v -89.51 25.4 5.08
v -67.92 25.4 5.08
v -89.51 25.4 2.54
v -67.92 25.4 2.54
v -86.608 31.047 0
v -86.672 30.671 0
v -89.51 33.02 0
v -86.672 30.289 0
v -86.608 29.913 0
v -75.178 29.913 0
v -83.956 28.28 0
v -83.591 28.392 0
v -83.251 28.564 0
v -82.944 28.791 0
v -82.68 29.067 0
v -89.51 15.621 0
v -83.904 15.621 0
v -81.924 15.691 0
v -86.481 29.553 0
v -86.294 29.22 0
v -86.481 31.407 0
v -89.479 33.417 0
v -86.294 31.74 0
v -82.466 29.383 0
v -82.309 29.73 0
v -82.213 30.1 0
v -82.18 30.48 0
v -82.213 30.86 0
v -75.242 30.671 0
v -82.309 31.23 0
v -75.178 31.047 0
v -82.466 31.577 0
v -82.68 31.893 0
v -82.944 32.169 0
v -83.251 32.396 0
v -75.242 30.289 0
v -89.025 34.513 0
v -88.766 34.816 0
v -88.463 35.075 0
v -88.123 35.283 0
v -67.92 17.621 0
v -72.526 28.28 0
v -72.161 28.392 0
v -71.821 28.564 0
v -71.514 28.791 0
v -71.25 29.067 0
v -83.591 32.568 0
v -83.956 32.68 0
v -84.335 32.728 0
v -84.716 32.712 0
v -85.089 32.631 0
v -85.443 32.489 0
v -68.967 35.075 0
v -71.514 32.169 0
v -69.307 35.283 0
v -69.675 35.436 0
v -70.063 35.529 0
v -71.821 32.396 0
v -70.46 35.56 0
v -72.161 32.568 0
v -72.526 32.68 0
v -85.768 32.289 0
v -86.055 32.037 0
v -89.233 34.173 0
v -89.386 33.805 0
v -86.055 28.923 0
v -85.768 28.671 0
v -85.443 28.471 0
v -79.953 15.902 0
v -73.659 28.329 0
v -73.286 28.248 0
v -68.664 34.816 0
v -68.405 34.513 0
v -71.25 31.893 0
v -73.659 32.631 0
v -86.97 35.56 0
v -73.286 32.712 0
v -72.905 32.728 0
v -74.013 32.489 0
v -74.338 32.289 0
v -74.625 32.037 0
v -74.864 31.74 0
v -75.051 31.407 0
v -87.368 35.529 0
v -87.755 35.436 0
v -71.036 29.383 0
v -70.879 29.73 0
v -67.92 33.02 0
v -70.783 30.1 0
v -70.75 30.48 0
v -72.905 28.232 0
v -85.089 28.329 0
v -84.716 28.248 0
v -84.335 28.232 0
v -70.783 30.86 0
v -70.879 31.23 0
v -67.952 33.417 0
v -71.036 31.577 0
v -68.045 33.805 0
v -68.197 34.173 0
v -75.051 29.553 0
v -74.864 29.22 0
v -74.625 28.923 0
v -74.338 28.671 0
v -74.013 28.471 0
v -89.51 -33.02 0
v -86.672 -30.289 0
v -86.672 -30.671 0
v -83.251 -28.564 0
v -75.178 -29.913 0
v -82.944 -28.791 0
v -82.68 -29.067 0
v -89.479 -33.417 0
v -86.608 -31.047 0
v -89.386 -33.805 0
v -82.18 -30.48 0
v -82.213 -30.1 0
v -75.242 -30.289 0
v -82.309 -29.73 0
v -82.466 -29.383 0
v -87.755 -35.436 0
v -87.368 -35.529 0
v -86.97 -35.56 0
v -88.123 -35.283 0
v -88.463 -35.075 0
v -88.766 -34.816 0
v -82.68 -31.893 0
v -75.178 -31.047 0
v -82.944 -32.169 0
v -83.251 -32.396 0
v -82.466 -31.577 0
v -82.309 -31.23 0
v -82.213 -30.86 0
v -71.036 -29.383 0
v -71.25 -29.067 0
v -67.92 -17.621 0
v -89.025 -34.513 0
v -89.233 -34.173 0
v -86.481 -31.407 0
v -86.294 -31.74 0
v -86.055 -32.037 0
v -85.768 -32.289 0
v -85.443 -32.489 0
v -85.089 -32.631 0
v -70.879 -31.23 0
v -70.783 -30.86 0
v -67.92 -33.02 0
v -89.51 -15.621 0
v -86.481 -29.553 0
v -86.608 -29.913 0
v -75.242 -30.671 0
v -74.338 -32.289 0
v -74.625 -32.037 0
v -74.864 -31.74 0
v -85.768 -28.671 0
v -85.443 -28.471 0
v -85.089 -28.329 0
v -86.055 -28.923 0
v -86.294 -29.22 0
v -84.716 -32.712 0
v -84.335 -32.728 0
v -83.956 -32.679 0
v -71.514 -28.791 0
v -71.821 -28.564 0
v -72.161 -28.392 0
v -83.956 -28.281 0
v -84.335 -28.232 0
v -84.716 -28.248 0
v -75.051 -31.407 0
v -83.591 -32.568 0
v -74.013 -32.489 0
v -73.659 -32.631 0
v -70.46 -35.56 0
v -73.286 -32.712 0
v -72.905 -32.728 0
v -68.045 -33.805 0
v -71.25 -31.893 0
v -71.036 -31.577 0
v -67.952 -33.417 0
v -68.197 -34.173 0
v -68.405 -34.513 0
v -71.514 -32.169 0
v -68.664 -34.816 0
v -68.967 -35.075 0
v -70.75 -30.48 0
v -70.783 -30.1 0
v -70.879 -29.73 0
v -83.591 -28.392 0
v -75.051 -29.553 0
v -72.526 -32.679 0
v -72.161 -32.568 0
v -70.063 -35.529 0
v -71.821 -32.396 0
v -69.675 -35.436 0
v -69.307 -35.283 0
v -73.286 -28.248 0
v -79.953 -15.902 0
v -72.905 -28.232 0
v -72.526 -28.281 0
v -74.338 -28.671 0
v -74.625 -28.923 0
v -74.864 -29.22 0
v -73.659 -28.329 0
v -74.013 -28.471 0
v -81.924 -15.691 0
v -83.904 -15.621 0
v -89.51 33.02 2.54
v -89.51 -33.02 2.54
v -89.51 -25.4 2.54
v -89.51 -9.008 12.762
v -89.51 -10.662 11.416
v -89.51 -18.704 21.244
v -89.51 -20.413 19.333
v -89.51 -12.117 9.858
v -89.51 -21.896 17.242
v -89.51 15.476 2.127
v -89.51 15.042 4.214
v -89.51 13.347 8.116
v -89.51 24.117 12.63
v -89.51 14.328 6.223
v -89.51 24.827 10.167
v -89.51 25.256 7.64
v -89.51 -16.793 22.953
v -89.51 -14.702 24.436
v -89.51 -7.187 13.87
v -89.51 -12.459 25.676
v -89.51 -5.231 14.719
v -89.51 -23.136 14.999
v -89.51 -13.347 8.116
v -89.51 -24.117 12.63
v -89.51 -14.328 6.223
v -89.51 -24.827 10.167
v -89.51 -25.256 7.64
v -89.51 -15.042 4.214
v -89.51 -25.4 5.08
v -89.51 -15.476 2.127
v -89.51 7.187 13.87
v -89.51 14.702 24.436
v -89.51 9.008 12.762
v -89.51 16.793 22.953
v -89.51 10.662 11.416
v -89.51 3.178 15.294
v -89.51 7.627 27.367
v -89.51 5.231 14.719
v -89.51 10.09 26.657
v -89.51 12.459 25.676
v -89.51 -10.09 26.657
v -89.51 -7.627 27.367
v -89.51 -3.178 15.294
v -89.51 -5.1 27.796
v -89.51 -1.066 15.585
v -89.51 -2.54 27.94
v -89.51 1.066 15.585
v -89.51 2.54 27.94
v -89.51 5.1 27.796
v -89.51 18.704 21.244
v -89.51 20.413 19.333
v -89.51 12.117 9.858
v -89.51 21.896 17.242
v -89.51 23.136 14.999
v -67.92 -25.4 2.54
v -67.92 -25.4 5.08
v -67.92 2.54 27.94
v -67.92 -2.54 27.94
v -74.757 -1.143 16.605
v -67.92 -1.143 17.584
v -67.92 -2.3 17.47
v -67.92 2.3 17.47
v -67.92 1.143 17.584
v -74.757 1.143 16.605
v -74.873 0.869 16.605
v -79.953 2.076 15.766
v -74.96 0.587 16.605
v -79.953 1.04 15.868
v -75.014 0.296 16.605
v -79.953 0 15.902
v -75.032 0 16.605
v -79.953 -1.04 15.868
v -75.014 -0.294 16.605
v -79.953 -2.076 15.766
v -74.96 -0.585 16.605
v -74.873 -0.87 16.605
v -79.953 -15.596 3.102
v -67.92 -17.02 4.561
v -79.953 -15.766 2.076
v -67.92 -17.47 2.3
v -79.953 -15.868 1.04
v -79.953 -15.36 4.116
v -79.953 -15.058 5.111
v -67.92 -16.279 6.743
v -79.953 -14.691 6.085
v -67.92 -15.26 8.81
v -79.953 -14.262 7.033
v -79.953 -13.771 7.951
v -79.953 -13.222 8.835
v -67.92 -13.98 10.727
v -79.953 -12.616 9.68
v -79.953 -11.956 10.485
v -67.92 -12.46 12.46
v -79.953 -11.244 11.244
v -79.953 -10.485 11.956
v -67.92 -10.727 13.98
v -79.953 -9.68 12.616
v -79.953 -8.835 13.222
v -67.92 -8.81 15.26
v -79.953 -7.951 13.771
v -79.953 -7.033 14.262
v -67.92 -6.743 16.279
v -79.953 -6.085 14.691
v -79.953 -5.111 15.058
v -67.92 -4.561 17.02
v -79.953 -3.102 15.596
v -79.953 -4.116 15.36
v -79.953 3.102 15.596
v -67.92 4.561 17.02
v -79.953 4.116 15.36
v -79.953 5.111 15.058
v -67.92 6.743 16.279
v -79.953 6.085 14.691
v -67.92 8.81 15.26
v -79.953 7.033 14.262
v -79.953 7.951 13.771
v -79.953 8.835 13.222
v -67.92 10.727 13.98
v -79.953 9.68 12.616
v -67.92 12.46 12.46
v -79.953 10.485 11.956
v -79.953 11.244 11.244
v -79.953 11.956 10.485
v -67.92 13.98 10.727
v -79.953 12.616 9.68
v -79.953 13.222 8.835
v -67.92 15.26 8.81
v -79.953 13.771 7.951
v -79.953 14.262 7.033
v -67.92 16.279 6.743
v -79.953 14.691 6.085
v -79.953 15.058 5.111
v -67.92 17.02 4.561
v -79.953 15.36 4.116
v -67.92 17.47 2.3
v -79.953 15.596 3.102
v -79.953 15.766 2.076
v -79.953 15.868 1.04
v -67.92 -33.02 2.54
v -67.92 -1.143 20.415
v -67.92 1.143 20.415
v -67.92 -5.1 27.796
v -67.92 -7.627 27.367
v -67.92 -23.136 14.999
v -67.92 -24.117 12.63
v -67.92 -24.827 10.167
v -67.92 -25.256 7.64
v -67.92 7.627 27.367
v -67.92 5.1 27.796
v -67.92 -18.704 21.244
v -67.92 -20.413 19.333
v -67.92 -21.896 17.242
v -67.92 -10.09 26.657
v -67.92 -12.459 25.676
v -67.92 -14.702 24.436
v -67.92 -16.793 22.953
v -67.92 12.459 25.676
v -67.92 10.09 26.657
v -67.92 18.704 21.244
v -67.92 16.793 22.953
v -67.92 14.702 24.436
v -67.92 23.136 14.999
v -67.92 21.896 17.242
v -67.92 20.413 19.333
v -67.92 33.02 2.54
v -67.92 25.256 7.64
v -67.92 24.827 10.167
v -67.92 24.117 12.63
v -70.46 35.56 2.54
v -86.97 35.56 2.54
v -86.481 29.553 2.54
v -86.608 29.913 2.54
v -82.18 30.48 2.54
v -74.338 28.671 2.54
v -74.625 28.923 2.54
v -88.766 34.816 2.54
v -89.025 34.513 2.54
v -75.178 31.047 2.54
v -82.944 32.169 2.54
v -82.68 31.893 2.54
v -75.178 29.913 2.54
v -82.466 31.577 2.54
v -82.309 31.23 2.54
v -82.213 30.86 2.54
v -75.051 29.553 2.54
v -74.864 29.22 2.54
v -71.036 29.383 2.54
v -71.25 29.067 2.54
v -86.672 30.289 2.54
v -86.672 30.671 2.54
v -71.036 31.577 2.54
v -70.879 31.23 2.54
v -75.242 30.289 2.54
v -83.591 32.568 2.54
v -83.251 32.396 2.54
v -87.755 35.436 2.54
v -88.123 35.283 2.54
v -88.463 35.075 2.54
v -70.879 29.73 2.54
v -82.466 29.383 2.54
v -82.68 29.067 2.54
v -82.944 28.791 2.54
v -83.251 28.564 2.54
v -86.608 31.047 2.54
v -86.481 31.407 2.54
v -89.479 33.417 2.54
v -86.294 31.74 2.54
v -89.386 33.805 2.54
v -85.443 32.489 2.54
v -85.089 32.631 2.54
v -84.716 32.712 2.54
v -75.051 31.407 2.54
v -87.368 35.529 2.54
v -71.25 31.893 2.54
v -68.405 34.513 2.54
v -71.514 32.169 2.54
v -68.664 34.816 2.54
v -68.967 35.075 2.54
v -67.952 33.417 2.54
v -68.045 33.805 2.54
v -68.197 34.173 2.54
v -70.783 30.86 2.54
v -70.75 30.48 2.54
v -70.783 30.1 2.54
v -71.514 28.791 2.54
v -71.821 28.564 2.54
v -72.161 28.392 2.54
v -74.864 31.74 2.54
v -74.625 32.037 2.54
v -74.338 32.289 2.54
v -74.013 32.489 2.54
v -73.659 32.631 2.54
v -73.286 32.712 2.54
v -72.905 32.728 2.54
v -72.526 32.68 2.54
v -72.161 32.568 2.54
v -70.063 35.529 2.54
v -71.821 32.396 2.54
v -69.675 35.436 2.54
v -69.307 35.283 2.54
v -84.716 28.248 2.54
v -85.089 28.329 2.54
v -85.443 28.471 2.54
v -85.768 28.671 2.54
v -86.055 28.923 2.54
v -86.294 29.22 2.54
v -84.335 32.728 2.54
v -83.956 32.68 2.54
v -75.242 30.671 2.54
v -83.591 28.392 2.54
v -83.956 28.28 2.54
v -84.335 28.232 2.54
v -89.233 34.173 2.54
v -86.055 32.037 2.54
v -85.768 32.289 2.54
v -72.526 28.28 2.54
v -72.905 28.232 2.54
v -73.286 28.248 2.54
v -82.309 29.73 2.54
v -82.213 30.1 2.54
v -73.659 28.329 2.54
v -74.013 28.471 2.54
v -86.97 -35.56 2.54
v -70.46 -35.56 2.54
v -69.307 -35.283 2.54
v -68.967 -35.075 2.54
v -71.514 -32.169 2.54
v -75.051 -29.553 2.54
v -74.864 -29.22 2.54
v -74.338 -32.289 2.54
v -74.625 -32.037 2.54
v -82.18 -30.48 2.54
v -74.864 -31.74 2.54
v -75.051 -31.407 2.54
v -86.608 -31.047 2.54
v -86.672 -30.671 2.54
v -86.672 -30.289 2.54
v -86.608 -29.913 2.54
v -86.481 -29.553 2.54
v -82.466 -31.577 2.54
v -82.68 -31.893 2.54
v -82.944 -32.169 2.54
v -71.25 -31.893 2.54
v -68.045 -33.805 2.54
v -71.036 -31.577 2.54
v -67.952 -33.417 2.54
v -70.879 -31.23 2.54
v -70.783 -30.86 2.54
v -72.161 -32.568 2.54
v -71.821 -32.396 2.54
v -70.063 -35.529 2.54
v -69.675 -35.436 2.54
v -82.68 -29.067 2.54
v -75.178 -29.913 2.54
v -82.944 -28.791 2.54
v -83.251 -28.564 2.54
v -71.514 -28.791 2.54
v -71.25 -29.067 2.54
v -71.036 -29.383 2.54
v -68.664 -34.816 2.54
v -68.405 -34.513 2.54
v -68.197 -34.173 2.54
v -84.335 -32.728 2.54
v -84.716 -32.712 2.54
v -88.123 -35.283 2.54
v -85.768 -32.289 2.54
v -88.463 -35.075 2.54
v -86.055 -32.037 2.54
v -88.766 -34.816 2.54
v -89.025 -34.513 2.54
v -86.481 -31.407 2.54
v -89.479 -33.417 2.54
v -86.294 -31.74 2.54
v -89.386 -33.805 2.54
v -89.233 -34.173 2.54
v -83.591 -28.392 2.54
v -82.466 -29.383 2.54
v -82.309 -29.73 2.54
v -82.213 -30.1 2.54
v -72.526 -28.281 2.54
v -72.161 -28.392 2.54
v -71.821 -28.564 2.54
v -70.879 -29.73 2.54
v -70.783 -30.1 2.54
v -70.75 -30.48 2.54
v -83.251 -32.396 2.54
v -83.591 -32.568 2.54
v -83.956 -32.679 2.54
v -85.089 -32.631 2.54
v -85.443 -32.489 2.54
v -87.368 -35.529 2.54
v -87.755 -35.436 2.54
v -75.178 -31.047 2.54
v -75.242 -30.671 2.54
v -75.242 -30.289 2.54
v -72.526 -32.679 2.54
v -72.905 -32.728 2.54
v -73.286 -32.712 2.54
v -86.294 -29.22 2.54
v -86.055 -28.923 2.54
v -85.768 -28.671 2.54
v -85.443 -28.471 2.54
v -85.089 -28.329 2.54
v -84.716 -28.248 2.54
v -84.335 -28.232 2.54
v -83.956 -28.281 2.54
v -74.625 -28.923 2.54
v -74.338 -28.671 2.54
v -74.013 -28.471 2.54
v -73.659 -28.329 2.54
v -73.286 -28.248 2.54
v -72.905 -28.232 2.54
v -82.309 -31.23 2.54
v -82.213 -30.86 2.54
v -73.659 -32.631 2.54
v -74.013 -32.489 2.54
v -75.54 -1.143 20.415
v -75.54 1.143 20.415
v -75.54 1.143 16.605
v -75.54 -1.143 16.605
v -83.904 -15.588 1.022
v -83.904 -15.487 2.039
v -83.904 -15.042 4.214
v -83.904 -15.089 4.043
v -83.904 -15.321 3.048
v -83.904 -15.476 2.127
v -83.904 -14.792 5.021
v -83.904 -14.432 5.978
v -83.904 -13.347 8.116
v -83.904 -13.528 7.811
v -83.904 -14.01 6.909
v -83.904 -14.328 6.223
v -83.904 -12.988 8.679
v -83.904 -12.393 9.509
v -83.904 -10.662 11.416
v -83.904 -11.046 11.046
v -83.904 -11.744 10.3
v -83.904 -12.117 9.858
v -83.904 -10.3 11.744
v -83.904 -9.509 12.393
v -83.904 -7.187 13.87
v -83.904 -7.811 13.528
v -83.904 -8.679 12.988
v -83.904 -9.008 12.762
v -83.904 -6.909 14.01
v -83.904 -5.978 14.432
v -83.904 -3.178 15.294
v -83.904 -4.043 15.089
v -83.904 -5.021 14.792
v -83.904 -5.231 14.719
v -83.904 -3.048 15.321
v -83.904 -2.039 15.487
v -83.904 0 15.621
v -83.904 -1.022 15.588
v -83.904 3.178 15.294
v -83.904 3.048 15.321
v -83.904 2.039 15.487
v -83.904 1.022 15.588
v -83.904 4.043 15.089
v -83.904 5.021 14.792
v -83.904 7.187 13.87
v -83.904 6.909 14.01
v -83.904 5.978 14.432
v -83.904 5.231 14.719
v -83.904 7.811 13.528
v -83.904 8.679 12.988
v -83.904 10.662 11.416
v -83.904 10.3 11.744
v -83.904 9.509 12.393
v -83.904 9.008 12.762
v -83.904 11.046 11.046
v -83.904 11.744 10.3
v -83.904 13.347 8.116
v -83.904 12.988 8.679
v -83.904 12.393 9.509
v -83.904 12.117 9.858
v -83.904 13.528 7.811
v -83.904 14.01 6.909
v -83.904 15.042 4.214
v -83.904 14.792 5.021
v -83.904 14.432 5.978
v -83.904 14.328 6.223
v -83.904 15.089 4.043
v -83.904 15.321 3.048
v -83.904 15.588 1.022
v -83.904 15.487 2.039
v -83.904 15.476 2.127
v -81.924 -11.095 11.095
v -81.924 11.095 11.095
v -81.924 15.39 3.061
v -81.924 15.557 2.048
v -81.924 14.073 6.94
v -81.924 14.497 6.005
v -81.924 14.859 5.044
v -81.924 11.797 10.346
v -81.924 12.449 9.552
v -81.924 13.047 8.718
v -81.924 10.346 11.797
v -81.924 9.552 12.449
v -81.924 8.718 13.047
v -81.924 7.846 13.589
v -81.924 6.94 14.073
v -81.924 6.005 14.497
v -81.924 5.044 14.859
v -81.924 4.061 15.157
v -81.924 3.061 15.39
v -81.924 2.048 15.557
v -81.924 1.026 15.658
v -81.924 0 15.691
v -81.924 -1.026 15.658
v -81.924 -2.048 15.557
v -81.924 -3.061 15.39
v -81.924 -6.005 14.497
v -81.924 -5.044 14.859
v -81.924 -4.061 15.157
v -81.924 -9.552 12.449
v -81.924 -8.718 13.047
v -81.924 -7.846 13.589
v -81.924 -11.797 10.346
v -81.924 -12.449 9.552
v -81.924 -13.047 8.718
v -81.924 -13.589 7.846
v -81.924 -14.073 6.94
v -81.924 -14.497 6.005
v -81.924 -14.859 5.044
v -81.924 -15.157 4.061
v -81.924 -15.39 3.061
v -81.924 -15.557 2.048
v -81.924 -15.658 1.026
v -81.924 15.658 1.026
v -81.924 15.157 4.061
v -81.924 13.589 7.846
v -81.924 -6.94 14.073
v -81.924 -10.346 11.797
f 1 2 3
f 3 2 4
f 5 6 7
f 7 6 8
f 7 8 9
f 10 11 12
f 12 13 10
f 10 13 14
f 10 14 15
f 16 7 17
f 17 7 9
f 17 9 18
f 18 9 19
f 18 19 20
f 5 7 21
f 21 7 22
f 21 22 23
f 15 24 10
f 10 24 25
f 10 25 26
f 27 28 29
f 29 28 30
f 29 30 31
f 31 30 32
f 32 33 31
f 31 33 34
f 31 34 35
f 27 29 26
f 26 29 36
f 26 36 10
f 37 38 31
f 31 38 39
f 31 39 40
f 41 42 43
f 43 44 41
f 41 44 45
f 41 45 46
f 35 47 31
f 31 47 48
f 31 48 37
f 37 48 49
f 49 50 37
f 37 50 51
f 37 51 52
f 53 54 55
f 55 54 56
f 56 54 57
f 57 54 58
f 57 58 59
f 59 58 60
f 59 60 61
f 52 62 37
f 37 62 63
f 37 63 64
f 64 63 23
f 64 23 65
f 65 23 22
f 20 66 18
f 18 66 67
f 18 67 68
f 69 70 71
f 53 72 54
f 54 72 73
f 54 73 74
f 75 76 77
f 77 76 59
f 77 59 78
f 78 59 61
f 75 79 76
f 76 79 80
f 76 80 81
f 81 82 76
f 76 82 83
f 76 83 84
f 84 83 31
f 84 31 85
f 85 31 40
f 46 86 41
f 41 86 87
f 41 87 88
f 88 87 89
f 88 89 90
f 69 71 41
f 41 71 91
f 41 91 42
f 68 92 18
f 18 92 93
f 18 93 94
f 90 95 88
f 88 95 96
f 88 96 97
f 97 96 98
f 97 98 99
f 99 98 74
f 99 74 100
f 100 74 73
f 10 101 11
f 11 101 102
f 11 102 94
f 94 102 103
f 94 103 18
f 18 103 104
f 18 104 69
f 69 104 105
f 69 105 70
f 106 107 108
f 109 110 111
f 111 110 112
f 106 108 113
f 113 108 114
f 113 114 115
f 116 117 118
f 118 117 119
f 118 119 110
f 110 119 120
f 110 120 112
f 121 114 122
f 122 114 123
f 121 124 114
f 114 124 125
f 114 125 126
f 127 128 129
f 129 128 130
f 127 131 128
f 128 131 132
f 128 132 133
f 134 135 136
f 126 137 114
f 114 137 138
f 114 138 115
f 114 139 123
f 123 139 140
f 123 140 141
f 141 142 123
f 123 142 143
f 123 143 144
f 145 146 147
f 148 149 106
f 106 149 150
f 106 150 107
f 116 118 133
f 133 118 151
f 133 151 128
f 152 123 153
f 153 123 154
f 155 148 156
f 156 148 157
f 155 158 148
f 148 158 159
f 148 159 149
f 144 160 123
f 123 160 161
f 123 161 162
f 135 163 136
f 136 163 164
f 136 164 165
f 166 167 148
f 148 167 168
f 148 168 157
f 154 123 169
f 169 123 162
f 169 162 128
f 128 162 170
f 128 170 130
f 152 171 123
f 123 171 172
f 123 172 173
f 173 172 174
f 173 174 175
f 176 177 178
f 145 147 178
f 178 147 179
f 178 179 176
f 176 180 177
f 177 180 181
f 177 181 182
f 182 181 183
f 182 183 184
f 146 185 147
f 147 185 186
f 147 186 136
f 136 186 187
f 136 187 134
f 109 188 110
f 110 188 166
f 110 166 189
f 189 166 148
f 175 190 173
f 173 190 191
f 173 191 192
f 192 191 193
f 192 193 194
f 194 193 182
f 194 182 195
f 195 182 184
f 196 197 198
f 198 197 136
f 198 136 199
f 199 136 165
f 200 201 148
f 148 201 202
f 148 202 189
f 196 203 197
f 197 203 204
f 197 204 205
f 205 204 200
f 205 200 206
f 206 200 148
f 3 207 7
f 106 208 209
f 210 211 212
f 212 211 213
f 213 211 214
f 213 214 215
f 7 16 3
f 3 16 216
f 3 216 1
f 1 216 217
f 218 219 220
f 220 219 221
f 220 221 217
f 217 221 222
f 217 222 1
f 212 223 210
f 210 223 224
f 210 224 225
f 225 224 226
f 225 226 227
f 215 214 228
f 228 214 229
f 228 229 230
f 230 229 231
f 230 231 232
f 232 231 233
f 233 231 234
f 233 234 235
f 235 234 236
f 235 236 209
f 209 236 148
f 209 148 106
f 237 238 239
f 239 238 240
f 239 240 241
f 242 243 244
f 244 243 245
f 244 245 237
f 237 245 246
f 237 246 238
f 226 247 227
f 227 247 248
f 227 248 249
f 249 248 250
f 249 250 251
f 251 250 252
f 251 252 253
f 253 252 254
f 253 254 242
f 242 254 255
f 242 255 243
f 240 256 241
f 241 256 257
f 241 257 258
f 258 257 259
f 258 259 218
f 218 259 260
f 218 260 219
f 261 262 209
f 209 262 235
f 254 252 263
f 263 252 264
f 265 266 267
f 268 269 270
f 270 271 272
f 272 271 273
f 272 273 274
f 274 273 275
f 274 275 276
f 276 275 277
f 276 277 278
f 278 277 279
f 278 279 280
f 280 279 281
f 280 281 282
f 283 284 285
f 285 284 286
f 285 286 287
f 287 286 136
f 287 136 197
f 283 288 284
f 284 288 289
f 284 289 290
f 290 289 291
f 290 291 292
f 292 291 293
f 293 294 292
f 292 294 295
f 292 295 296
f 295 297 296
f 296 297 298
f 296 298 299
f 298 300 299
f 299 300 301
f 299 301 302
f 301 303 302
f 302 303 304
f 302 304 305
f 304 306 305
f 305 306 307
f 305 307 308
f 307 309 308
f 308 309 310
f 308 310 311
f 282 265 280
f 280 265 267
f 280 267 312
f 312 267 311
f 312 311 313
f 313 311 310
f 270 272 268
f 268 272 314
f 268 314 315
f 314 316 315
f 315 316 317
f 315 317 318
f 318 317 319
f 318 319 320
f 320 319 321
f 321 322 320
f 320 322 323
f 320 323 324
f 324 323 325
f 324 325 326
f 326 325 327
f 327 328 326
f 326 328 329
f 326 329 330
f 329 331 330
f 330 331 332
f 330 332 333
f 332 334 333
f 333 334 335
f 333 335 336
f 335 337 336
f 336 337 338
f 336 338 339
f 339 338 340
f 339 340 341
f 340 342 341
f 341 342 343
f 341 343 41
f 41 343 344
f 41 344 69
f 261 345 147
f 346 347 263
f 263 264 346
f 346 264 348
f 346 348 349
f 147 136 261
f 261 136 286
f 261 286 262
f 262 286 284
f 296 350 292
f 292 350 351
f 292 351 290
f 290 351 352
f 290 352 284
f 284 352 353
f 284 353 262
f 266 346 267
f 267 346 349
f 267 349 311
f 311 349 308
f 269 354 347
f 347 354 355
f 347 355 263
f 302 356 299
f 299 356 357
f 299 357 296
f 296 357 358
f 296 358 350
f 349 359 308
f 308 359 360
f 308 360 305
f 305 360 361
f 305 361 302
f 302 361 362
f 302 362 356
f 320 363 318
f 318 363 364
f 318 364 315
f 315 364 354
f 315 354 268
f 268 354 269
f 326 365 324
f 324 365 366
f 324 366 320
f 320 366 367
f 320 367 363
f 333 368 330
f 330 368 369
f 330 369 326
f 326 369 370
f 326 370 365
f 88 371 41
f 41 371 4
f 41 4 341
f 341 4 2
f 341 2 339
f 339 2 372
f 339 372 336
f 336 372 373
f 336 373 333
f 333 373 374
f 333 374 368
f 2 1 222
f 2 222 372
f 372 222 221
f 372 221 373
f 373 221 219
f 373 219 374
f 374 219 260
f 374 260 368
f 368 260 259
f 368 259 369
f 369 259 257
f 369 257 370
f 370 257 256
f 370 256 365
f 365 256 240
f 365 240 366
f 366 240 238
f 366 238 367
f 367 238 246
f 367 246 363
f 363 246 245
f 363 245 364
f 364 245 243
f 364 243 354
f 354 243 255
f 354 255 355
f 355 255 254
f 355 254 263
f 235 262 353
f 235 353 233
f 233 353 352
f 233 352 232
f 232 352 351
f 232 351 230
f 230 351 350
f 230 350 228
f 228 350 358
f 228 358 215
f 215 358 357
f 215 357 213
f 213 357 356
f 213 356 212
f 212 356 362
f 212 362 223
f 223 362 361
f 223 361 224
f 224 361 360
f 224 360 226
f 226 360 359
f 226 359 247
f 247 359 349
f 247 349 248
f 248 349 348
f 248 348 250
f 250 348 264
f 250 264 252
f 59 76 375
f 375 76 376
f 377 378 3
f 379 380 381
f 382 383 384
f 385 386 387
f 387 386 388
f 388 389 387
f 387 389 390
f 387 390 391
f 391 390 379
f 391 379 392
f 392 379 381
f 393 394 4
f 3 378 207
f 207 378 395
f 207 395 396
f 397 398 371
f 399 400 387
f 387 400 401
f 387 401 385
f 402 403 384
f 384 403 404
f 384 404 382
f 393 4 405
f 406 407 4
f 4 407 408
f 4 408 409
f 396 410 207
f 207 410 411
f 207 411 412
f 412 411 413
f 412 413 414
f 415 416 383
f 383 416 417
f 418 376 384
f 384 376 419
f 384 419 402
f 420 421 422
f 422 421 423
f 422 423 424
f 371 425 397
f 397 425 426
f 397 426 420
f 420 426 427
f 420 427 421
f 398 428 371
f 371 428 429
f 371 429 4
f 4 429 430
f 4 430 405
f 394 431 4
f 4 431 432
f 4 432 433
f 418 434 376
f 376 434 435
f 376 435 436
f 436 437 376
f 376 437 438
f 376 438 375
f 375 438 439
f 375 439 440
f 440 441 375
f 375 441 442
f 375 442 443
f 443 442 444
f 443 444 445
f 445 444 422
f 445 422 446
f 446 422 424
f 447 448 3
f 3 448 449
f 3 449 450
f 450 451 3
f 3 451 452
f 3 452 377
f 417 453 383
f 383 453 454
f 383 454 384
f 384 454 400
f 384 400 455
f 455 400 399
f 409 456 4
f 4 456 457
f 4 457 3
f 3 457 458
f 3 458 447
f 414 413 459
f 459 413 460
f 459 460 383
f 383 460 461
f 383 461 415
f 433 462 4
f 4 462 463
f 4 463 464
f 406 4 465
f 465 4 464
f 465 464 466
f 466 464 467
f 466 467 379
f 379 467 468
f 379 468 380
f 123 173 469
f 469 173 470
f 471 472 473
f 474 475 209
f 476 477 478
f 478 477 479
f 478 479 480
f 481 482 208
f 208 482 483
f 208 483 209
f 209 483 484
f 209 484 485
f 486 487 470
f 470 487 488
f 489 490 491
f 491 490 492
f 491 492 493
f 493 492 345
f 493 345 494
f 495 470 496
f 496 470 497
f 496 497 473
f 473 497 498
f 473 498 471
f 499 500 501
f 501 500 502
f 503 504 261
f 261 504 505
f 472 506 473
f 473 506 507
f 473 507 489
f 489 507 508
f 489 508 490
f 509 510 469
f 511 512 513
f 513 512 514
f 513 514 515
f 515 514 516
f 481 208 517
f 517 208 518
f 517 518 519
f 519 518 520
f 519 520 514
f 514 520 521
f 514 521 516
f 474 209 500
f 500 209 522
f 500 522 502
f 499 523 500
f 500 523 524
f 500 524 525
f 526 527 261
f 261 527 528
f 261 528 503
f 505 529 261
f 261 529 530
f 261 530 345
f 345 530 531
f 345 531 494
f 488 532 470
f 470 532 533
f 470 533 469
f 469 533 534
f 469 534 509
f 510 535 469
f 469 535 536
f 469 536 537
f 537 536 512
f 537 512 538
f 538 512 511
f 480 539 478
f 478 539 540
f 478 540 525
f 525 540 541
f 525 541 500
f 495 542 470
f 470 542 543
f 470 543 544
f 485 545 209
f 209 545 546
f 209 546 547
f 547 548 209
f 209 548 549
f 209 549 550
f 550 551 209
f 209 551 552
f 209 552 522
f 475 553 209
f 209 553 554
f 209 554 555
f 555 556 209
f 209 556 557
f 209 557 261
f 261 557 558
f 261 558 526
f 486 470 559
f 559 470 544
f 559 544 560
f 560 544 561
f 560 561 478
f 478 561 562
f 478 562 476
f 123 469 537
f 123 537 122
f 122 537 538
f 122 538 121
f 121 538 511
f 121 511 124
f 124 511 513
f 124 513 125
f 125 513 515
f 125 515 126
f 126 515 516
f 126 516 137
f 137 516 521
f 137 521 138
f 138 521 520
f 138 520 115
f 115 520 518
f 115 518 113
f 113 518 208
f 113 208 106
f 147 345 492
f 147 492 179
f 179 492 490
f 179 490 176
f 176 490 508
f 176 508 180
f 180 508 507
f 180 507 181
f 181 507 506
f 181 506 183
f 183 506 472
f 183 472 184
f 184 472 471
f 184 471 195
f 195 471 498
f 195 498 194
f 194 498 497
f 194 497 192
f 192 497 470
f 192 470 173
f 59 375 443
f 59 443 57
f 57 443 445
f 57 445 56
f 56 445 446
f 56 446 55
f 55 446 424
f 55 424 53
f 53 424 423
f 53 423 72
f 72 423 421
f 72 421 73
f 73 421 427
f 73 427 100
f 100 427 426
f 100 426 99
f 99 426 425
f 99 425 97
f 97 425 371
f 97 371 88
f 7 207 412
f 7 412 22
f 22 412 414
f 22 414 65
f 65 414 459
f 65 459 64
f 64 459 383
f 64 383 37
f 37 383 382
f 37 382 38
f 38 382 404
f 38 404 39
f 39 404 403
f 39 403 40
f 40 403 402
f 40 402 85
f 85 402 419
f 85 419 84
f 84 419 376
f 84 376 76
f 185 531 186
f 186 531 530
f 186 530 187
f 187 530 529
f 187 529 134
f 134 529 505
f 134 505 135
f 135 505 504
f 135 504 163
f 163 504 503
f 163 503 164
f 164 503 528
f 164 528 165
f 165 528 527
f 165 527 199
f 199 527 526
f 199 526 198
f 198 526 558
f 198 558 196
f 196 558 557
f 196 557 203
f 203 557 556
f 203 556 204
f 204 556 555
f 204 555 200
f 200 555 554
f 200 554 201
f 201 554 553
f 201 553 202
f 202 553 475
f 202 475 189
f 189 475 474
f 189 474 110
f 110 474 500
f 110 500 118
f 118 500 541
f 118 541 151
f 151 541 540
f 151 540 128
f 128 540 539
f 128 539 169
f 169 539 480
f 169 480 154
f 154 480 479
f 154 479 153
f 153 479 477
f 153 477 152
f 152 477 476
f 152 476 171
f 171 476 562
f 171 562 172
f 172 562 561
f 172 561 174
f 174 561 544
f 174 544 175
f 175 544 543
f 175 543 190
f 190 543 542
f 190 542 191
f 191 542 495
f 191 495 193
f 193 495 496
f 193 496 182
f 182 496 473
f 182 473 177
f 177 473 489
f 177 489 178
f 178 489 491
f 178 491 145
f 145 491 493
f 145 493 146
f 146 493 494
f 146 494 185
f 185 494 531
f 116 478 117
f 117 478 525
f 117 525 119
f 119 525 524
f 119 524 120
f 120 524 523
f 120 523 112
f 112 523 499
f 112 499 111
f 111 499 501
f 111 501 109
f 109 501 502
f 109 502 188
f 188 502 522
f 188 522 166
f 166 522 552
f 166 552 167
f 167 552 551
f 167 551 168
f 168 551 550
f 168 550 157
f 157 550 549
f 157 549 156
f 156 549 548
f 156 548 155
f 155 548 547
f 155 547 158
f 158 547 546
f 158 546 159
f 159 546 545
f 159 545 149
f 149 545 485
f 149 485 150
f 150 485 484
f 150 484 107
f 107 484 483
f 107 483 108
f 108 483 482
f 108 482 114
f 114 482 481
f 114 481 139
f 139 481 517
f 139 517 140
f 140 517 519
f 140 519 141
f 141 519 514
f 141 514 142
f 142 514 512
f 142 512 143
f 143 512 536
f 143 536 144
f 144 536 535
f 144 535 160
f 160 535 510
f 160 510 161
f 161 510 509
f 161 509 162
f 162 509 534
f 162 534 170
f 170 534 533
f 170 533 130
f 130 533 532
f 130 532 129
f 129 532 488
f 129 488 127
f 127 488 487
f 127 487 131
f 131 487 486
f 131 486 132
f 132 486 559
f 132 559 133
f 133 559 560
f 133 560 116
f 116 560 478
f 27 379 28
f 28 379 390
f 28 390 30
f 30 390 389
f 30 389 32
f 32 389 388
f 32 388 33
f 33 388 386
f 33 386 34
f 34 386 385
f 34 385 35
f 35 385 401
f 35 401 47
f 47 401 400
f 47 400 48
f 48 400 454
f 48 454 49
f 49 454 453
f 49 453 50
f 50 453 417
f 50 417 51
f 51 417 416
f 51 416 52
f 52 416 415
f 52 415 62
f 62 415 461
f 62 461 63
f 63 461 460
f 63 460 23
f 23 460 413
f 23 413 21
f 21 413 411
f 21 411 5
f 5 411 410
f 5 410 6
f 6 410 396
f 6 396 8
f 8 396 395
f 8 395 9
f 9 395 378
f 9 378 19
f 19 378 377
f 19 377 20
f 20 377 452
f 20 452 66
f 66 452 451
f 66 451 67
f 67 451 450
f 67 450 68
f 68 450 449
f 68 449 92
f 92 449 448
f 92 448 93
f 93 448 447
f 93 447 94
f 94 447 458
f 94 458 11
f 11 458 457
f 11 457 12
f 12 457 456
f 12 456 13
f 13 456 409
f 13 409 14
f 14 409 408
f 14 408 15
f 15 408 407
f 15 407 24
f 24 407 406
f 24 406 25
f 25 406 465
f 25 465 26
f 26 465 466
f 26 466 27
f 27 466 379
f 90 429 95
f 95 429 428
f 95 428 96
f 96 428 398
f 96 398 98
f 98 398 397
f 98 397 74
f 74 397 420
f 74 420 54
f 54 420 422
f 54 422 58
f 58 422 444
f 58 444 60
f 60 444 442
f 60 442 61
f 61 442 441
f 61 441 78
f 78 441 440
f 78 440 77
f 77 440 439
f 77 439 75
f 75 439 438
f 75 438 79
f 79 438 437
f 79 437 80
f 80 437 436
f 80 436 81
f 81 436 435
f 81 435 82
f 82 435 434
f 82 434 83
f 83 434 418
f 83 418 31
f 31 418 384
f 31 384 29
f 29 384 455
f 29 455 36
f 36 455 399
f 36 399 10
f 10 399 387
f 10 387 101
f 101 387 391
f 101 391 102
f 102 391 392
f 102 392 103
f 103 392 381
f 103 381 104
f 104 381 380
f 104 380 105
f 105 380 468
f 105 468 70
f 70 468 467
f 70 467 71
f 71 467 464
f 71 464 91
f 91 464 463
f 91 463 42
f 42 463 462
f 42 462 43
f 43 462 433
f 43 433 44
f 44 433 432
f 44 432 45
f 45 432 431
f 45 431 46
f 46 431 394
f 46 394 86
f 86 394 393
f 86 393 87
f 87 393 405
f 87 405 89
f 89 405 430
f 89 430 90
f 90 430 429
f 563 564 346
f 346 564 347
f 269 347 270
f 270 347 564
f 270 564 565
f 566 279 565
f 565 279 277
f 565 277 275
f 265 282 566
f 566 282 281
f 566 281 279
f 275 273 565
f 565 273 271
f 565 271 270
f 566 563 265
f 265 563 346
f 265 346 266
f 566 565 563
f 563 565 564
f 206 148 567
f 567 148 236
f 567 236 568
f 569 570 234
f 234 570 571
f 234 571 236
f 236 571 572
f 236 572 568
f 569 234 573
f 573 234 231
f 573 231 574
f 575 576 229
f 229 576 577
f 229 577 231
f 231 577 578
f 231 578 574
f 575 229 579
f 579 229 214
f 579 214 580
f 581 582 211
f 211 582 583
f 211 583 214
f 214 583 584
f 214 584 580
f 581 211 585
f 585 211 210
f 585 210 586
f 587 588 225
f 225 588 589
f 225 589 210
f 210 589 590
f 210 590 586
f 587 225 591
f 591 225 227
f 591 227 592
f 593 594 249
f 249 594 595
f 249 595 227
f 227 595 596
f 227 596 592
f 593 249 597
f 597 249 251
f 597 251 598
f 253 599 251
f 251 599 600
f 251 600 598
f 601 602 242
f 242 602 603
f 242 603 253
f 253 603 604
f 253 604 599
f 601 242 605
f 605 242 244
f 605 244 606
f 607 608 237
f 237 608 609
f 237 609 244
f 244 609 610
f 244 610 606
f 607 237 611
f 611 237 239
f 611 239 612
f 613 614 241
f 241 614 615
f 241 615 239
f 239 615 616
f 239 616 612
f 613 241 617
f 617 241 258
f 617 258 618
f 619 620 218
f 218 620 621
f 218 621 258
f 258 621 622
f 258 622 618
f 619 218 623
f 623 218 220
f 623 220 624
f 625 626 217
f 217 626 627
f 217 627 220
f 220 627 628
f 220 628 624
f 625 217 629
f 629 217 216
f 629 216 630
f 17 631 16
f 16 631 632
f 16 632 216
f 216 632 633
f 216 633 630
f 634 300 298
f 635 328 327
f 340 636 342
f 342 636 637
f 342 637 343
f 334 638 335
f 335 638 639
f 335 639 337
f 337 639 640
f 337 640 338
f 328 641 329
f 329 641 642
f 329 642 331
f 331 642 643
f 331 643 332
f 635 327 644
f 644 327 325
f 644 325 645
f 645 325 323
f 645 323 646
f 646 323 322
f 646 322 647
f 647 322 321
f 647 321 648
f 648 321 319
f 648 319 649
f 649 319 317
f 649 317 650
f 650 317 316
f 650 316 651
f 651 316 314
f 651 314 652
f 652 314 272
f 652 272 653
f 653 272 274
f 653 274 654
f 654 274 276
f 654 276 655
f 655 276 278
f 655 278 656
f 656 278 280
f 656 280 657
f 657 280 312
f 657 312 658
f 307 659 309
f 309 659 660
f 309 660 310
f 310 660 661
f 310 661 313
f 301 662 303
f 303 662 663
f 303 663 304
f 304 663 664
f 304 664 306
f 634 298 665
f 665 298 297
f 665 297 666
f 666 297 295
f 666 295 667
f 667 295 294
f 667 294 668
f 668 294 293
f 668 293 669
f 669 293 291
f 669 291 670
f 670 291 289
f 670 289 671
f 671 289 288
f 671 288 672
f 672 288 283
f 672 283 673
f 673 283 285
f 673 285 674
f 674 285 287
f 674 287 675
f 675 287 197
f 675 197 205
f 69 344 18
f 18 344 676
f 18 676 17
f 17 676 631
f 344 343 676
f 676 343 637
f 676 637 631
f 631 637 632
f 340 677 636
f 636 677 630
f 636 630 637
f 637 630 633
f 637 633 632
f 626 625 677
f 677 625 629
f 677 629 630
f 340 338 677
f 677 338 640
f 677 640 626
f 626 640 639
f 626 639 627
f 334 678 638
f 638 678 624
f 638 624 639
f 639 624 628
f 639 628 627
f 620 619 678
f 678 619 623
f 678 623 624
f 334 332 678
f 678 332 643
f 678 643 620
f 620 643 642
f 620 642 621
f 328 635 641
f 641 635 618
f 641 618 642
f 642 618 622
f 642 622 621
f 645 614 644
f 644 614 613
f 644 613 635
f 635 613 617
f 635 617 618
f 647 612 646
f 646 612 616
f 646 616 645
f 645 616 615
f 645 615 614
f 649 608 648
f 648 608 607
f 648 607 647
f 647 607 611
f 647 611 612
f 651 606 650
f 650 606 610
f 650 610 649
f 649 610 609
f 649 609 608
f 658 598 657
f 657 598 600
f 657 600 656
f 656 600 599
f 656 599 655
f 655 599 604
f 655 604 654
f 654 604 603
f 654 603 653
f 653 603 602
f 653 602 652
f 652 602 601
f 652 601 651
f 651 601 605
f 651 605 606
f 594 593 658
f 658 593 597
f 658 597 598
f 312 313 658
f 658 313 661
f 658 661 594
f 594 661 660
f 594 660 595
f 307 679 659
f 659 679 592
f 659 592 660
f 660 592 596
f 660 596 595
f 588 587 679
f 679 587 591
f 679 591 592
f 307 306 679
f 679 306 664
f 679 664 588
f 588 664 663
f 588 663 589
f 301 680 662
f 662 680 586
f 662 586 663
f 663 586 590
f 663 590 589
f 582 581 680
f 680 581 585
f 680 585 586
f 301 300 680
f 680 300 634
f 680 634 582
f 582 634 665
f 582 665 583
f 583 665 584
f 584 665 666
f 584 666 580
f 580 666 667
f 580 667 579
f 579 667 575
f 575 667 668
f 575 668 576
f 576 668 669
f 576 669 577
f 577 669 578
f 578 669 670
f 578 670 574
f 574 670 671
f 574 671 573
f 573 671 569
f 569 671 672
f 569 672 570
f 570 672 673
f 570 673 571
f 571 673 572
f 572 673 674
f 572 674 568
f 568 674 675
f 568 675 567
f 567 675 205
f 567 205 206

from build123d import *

# Parameters (mm, degrees)
SKETCH3_W           = 93.98
SKETCH3_H           = 50.8
BOSS_EXTRUDE1_DEPTH = 27.94
SKETCH4_W           = 72.39
SKETCH4_H           = 50.8
CUT_EXTRUDE1_DEPTH  = 27.94
FILLET1_R           = 22.86
SKETCH5_W           = 21.59
SKETCH5_H           = 10.16
BOSS_EXTRUDE2_DEPTH = 2.54
FILLET2_R           = 2.54
SKETCH6_R           = 2.249999945
CUT_EXTRUDE2_DEPTH  = 2.54
SKETCH7_W           = 3.81
SKETCH7_H           = 2.286
CUT_EXTRUDE3_DEPTH  = 7.62
SKETCH8_R           = 15.621
CUT_EXTRUDE4_DEPTH  = 15.24
FILLET3_R           = 27.94


# Read off the part's stored shape, not the designer's step: Cavity1
with BuildPart() as part:
    # Sketch3 → Boss-Extrude1 (new body)
    with BuildSketch(Plane.XY):
        with Locations((-42.520322955, 0)):
            Rectangle(SKETCH3_W, SKETCH3_H)
    extrude(amount=BOSS_EXTRUDE1_DEPTH)

    # Cavity1 outline → Cavity1 (revolve, cut)
    with BuildSketch(Plane.YX):
        with BuildLine():
            Line((0, -89.510322955), (14.536498149, -89.510322955))
            Line((14.536498149, -89.510322955), (17.81175, -66.58356))
            Line((17.81175, -66.58356), (6.477, -66.58356))
            Line((6.477, -66.58356), (6.477, -17.35836))
            Line((6.477, -17.35836), (23.05812, -17.35836))
            ThreePointArc((23.05812, -17.35836), (21.288451872, -10.075162449), (18.689240956, -3.045169955))
            ThreePointArc((18.689240956, -3.045169955), (17.939550019, -2.064315438), (16.821043187, -1.541769218))
            ThreePointArc((16.821043187, -1.541769218), (11.026301594, -0.582300423), (5.1816, 0))
            Line((5.1816, 0), (4.864997876, 4.469677045))
            Line((4.864997876, 4.469677045), (0, 4.469677045))
            Line((0, 4.469677045), (0, -89.510322955))
        make_face()
    revolve(axis=Axis((0, 0, 0), (1, 0, 0)), mode=Mode.SUBTRACT)

    # Sketch4 → Cut-Extrude1 (cut)
    with BuildSketch(Plane(origin=(0, 0, 0), x_dir=(-1, 0, 0), z_dir=(0, 0, -1))):
        with Locations((31.725322955, 0)):
            Rectangle(SKETCH4_W, SKETCH4_H)
    extrude(amount=-CUT_EXTRUDE1_DEPTH, mode=Mode.SUBTRACT)

    # Fillet1
    fillet1_edges = [part.edges().sort_by_distance(p)[0] for p in [
        (-78.715322955, 25.4, 27.94),
        (-78.715322955, -25.4, 27.94),
    ]]
    fillet(fillet1_edges, radius=FILLET1_R)

    # Sketch5 → Boss-Extrude2 (add)
    with BuildSketch(Plane(origin=(0, 0, 0), x_dir=(-1, 0, 0), z_dir=(0, 0, -1))):
        with Locations((78.715322955, 30.48)):
            Rectangle(SKETCH5_W, SKETCH5_H)
        with Locations((78.715322955, -30.48)):
            Rectangle(SKETCH5_W, SKETCH5_H)
    extrude(amount=-BOSS_EXTRUDE2_DEPTH)

    # Fillet2
    fillet2_edges = [part.edges().sort_by_distance(p)[0] for p in [
        (-89.510322955, 35.56, 1.27),
        (-67.920322955, 35.56, 1.27),
        (-89.510322955, -35.56, 1.27),
        (-67.920322955, -35.56, 1.27),
    ]]
    fillet(fillet2_edges, radius=FILLET2_R)

    # Sketch6 → Cut-Extrude2 (cut)
    with BuildSketch(Plane.XY.offset(2.54)):
        with Locations((-84.430322955, 30.48)):
            Circle(SKETCH6_R)
        with Locations((-73.000322955, 30.48)):
            Circle(SKETCH6_R)
        with Locations((-84.430322955, -30.48)):
            Circle(SKETCH6_R)
        with Locations((-73.000322955, -30.48)):
            Circle(SKETCH6_R)
    extrude(amount=-CUT_EXTRUDE2_DEPTH, mode=Mode.SUBTRACT)

    # Sketch7 → Cut-Extrude3 (cut)
    with BuildSketch(Plane(origin=(-67.920322955, 0, 0), x_dir=(0, 0, -1), z_dir=(1, 0, 0))):
        with Locations((-18.509783864, 0)):
            Rectangle(SKETCH7_W, SKETCH7_H)
    extrude(amount=-CUT_EXTRUDE3_DEPTH, mode=Mode.SUBTRACT)

    # Sketch8 → Cut-Extrude4 (cut)
    with BuildSketch(Plane.ZY.offset(89.510322955)):
        Circle(SKETCH8_R)
    extrude(amount=-CUT_EXTRUDE4_DEPTH, mode=Mode.SUBTRACT)

    # Fillet3
    fillet3_edges = [part.edges().sort_by_distance(p)[0] for p in [
        (-81.918809999, 0, 15.621),
    ]]
    fillet(fillet3_edges, radius=FILLET3_R)


solid = part.part
